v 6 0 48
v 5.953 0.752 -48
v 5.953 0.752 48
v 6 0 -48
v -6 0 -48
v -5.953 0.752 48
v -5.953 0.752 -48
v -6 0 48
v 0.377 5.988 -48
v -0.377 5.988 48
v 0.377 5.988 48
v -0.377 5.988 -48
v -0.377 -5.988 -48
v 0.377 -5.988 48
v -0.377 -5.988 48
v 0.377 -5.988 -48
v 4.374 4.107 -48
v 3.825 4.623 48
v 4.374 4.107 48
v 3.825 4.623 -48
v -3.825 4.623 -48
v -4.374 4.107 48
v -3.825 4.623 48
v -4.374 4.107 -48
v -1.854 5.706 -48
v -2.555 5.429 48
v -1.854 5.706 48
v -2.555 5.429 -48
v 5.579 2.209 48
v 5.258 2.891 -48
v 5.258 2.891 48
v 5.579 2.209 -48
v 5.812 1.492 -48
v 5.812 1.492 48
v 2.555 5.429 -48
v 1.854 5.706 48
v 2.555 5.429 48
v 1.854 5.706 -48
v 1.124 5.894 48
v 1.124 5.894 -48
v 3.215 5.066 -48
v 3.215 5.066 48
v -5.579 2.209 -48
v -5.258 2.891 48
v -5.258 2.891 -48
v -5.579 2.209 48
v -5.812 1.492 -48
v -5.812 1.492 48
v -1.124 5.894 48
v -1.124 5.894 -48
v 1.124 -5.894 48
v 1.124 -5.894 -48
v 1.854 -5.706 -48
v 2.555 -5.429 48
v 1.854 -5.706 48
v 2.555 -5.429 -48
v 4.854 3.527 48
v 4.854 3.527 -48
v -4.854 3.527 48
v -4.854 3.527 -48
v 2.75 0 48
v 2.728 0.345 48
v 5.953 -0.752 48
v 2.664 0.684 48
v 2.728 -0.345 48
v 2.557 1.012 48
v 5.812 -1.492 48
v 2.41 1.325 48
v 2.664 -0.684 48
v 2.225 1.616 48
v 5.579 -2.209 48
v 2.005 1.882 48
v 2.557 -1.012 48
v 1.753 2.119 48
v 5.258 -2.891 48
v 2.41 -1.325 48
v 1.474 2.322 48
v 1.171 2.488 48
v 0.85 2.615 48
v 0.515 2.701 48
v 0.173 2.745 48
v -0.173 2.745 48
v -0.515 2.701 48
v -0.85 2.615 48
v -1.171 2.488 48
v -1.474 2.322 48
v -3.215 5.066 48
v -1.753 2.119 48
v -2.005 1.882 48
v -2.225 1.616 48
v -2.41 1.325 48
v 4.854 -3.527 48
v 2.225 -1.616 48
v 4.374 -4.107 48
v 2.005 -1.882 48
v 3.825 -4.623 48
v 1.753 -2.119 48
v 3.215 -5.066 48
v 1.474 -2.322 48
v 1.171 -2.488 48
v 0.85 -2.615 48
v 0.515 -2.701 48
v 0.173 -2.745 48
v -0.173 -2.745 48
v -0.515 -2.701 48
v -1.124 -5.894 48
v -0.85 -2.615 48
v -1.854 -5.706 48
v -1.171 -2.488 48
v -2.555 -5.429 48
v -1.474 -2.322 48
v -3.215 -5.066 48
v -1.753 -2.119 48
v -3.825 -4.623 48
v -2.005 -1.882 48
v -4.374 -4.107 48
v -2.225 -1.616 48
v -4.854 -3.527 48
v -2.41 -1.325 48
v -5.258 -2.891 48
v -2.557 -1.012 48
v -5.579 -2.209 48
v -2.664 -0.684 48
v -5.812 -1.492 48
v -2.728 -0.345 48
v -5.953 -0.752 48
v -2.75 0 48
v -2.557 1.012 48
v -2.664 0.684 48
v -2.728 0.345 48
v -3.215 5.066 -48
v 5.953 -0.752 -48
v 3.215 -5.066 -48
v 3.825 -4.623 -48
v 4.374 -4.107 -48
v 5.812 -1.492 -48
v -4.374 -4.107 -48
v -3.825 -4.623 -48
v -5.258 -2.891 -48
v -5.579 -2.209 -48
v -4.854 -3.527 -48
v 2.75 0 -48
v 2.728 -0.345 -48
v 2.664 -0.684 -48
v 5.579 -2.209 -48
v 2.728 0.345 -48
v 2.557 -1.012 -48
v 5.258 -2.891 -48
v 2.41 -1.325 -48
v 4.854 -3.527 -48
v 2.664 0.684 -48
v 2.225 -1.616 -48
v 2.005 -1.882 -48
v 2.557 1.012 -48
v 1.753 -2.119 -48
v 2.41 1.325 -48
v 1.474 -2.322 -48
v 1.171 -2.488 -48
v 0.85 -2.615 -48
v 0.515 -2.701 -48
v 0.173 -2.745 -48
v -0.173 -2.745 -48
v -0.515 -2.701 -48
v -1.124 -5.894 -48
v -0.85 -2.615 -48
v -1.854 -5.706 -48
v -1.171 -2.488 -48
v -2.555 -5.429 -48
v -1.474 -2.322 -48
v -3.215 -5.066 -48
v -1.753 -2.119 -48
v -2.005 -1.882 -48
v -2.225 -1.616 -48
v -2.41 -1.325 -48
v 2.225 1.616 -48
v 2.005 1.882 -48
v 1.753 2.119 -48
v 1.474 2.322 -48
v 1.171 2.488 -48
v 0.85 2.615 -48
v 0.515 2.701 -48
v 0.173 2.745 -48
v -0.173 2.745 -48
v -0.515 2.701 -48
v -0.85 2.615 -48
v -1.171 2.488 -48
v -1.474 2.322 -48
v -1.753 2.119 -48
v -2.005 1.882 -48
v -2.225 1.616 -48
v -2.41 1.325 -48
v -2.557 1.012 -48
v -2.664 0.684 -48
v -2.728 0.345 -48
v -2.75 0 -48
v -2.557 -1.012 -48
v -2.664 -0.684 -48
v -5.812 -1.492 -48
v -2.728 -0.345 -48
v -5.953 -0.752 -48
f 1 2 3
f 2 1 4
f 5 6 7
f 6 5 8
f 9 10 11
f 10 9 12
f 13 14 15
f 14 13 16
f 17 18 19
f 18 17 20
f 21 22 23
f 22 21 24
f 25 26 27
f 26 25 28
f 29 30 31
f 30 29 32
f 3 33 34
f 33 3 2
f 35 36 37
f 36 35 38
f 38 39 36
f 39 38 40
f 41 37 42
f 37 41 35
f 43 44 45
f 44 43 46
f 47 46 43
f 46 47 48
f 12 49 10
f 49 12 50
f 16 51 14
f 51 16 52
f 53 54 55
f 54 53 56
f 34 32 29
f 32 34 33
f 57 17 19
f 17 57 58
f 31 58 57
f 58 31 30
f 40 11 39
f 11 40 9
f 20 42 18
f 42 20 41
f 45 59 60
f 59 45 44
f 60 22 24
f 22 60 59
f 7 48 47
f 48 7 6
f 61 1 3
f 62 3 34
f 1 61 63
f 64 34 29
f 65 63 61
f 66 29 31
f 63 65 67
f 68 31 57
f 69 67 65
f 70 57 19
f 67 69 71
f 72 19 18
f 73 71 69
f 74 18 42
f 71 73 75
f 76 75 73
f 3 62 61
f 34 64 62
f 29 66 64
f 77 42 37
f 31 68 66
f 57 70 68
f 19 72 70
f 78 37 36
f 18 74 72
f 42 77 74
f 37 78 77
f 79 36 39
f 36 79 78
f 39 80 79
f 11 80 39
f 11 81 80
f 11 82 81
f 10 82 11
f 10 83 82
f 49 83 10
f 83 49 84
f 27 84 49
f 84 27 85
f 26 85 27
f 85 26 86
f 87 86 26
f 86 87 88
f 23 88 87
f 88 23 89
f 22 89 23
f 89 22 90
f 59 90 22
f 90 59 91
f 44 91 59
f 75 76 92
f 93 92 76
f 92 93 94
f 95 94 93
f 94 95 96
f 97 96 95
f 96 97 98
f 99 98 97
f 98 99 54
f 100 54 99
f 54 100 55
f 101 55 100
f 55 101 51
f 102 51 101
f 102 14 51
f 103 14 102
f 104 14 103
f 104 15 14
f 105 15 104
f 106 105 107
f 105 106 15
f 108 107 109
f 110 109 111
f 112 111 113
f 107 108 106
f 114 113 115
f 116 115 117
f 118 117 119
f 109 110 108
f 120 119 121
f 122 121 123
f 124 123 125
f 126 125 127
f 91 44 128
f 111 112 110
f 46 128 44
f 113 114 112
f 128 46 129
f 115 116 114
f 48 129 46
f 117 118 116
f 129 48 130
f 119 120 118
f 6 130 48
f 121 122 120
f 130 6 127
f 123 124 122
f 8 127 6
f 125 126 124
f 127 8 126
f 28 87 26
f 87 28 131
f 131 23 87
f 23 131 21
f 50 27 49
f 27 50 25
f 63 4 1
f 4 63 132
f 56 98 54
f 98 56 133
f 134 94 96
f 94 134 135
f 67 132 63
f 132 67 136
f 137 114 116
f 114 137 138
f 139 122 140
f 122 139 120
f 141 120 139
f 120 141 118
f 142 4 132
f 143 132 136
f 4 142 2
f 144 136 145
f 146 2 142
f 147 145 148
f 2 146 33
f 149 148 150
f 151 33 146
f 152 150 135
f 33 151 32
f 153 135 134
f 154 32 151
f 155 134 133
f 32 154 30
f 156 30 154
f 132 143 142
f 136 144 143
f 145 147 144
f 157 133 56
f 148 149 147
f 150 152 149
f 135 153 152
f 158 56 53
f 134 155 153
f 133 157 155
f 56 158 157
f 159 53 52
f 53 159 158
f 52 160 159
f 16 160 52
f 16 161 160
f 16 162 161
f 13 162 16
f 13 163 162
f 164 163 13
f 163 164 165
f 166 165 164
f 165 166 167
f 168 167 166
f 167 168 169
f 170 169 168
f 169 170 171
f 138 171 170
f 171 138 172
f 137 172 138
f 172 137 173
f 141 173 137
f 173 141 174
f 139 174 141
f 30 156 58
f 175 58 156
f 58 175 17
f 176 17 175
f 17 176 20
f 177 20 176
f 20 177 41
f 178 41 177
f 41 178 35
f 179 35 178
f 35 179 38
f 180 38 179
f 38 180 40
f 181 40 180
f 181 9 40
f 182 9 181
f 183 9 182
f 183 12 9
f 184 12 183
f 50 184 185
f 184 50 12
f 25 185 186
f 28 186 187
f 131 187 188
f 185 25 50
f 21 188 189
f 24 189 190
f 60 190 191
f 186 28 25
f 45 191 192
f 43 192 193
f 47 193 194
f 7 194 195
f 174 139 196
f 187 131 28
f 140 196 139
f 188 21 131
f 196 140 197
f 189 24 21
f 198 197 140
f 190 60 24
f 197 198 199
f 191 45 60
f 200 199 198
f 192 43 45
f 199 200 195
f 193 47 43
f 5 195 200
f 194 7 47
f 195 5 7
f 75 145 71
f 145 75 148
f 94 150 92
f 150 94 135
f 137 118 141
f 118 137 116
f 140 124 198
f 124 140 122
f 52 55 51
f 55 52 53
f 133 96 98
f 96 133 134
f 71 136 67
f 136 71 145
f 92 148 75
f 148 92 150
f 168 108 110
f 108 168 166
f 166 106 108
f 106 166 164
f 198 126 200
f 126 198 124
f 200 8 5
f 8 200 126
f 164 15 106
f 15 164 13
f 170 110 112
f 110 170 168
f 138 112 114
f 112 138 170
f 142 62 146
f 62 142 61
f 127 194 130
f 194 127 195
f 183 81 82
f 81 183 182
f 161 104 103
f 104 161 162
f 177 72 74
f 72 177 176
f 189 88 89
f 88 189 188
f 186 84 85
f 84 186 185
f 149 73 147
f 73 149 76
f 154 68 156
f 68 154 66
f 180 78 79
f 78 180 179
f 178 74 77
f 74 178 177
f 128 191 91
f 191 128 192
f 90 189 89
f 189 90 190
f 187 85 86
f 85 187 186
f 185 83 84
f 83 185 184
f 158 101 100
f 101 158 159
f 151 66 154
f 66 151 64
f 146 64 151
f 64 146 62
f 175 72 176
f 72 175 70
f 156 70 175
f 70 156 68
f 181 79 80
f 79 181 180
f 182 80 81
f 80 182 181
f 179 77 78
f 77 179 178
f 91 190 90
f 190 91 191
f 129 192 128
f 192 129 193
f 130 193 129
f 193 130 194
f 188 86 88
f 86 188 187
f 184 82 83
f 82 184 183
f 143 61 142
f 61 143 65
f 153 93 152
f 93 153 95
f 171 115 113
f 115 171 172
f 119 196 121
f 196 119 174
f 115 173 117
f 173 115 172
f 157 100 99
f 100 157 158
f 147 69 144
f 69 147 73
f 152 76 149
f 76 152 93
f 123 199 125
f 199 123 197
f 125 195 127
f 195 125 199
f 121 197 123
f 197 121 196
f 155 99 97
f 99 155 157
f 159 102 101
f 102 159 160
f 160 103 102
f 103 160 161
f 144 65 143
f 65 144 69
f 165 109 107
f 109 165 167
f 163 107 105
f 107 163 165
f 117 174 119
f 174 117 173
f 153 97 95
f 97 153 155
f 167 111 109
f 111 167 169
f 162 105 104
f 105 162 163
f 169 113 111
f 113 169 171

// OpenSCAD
$fn = 50;


difference() {
	union() {
		translate(v = [0, 0, -48.0000000000]) {
			cylinder(h = 96, r = 6.0000000000);
		}
	}
	union() {
		translate(v = [0, 0, -100.0000000000]) {
			cylinder(h = 200, r = 2.7500000000);
		}
	}
}
